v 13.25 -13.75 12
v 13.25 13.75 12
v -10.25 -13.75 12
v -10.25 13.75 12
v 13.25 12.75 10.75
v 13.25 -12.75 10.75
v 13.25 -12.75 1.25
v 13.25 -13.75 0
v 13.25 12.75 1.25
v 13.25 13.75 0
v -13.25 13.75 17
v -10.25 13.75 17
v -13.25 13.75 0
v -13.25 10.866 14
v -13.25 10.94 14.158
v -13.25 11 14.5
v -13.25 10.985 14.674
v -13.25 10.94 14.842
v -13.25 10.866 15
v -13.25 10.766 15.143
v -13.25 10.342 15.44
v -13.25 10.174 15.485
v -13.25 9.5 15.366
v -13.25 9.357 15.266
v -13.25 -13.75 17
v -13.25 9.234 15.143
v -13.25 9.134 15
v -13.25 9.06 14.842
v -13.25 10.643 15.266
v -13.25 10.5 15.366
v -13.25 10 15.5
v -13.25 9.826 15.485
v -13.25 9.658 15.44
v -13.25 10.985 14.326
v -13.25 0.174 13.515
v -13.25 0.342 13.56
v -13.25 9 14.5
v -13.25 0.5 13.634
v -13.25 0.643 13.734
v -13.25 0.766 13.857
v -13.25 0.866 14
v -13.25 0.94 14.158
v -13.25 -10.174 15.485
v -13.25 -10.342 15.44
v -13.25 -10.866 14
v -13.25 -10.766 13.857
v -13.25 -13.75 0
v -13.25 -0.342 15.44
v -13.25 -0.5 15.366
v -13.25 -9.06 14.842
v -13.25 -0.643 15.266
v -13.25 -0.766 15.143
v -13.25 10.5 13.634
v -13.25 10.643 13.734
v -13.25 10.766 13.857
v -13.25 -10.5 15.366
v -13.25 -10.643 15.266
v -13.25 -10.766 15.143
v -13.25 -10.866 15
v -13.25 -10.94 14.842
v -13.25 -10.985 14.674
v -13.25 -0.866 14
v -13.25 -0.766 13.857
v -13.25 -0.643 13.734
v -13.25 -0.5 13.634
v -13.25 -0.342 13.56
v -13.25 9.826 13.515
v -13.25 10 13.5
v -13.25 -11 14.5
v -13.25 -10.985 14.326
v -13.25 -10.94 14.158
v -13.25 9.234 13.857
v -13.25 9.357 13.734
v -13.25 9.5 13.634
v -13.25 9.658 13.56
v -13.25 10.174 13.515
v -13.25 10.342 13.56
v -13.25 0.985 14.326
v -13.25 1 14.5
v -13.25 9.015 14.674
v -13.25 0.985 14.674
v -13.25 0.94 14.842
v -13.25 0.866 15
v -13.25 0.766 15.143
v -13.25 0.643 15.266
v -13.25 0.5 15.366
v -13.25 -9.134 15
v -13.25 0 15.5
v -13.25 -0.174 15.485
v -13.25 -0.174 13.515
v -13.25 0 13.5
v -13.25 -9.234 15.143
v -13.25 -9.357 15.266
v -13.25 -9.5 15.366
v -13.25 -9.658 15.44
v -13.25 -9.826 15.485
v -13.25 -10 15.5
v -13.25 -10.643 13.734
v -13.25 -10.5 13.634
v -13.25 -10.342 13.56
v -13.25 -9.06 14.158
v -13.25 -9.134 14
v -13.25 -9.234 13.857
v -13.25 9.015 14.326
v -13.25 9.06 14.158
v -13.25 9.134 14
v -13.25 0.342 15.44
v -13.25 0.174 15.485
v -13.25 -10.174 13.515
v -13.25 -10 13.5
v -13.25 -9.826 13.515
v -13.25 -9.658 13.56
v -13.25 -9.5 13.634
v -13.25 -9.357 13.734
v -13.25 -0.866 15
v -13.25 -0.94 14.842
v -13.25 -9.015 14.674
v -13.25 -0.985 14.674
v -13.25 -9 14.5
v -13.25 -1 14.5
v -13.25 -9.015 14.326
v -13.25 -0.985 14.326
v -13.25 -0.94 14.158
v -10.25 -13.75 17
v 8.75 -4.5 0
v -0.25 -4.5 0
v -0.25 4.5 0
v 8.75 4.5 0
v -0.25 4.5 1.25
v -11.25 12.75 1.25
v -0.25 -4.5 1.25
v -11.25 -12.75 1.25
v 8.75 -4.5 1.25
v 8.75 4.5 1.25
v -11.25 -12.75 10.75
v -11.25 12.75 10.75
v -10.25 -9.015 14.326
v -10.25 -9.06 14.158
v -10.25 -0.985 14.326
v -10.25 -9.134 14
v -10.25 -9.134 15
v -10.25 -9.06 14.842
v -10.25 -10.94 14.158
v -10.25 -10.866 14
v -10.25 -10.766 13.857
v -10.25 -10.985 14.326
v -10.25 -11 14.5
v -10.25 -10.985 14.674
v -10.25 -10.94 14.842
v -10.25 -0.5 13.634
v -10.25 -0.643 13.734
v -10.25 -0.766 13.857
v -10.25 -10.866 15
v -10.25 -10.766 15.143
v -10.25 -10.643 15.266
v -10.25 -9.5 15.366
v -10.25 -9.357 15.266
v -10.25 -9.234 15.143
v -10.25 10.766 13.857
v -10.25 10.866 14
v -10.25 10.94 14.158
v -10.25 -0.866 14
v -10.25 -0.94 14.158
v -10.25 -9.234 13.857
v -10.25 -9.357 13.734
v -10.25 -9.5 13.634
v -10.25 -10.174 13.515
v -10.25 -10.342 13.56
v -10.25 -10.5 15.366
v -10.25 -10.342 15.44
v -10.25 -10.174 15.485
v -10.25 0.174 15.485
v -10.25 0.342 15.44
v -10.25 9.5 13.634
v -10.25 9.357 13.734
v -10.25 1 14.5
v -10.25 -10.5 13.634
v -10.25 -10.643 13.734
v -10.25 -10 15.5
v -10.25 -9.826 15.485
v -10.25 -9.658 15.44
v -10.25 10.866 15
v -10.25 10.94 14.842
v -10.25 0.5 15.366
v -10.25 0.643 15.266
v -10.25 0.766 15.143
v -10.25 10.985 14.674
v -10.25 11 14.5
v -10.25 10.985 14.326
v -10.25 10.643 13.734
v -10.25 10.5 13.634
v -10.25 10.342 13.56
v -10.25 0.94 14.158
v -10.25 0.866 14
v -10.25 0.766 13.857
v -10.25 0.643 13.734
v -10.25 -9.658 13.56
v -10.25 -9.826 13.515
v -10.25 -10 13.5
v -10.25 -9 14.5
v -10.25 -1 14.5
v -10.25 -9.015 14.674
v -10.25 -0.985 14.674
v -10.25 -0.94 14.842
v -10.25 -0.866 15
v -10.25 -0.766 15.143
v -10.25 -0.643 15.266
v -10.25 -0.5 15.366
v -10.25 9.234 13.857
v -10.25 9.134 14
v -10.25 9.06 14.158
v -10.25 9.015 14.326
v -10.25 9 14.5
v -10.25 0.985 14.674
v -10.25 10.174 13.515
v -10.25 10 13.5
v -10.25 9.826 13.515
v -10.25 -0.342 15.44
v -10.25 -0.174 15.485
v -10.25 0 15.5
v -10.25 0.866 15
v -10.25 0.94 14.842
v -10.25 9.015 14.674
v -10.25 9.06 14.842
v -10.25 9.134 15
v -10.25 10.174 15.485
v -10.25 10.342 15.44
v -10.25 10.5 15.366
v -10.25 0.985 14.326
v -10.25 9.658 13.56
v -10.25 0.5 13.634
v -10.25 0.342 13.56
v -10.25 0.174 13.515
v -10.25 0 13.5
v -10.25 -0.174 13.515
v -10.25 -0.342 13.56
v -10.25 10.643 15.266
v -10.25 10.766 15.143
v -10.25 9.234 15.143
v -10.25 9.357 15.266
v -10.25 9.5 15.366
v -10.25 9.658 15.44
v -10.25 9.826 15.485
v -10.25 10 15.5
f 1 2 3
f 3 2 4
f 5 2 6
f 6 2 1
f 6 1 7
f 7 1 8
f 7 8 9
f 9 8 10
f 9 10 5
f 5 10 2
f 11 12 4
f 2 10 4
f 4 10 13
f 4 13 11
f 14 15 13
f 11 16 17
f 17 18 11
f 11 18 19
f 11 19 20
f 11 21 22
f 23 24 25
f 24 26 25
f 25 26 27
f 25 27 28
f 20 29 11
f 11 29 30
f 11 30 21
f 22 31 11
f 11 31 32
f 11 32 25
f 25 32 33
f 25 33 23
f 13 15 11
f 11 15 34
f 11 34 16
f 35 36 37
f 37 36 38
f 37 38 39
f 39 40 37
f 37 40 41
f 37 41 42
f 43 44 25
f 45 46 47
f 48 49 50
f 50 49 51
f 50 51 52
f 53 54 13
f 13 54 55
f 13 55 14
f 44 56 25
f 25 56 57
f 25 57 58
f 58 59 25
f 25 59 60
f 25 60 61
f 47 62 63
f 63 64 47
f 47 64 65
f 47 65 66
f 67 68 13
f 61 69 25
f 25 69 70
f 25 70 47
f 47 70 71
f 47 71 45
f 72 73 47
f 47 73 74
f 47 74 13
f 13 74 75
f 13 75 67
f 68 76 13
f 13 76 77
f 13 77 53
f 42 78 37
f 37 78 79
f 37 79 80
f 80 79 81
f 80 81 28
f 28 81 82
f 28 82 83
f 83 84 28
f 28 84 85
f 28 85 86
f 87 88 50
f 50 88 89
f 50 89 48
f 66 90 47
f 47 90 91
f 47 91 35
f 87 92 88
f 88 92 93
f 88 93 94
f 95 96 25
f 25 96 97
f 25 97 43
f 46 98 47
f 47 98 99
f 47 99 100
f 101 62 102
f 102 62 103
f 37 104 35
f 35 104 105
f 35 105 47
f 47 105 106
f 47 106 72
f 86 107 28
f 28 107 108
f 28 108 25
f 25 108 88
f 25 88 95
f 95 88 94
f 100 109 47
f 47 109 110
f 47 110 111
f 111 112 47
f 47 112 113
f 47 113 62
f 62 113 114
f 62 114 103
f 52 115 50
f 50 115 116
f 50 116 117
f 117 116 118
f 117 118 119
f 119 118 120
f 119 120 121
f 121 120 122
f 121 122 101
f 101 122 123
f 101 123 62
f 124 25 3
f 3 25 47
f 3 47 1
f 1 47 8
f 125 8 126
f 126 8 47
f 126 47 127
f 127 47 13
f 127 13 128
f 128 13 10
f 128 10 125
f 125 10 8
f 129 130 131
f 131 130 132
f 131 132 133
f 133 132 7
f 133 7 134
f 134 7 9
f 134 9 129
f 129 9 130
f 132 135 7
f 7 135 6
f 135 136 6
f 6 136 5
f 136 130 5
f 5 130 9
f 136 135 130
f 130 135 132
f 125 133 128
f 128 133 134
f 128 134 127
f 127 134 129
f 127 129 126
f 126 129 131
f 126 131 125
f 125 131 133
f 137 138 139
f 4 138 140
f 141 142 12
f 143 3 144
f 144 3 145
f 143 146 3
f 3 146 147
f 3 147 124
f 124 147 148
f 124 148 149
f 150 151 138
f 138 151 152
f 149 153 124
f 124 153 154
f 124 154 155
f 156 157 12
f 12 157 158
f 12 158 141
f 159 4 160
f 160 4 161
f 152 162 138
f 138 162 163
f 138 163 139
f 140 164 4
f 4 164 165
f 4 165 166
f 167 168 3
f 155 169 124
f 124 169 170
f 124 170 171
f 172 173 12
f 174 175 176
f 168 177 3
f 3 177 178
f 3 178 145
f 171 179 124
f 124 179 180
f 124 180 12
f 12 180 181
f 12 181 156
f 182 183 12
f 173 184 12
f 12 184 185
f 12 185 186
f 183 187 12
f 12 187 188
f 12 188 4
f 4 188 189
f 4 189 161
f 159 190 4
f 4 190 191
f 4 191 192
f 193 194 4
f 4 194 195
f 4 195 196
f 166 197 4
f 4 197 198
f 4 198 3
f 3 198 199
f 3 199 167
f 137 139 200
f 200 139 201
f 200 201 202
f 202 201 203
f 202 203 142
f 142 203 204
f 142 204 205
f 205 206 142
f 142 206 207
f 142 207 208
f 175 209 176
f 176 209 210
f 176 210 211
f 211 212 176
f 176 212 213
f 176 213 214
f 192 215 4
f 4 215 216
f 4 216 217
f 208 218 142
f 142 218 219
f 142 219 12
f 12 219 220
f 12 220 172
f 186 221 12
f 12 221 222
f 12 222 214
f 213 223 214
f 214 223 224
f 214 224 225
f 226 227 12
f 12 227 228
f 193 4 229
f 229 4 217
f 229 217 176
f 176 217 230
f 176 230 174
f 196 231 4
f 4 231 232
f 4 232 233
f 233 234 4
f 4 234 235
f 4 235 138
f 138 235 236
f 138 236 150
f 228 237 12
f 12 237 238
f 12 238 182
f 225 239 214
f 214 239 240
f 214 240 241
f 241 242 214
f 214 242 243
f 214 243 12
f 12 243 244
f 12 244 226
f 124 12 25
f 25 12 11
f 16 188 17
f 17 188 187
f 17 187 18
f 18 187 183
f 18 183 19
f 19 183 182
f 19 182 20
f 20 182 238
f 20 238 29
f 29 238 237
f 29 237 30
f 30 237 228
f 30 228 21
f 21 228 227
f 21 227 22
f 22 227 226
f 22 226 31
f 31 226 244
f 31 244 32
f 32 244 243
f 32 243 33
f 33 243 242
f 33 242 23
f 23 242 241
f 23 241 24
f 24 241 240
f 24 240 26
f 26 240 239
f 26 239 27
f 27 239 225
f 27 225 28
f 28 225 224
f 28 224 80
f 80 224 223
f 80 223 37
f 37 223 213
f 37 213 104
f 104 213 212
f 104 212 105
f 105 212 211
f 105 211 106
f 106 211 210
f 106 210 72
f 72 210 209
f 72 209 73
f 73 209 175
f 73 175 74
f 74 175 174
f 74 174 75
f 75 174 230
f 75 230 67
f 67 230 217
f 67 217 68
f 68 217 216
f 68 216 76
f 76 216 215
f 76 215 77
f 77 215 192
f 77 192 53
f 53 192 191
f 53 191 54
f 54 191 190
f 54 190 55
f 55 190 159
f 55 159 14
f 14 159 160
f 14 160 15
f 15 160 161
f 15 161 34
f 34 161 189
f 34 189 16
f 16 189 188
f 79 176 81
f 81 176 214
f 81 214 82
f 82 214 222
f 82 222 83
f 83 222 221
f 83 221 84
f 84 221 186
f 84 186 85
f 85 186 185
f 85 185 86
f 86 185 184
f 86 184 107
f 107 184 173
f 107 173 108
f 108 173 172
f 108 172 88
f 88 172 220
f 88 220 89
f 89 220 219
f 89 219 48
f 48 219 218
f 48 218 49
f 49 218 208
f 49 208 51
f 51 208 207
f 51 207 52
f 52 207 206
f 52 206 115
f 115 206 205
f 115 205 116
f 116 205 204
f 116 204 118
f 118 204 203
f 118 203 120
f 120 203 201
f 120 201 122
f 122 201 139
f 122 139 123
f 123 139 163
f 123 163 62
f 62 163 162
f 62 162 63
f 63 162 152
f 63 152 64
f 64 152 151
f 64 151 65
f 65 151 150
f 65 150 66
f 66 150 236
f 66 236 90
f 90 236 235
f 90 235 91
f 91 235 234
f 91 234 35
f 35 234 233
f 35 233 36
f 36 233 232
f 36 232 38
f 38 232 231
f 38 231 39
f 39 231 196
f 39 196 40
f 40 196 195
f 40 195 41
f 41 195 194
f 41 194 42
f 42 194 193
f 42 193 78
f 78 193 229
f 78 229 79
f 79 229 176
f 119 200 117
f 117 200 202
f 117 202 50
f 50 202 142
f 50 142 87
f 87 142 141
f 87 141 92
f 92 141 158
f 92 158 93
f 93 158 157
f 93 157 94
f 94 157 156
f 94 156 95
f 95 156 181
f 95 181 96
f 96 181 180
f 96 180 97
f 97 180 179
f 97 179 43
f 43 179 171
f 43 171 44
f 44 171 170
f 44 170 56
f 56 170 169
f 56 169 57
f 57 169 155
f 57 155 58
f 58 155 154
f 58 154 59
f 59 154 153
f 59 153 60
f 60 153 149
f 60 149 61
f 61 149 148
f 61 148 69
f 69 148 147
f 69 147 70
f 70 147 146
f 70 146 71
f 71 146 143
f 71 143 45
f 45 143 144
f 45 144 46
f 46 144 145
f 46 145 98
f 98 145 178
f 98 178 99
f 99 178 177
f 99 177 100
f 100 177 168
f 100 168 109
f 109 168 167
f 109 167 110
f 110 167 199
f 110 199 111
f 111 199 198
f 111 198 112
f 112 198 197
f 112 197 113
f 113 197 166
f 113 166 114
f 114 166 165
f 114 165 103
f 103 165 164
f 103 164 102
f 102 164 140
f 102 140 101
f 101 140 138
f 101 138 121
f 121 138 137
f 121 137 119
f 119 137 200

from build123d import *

# Parameters (mm, degrees)
SKETCH1_W           = 26.5
SKETCH1_H           = 27.5
BOSS_EXTRUDE1_DEPTH = 12
SKETCH3_W           = 9.5
SKETCH3_H           = 25.5
CUT_EXTRUDE1_DEPTH  = 24.5
SKETCH4_W           = 9
SKETCH4_H           = 9
CUT_EXTRUDE2_DEPTH  = 3.5
SKETCH6_W           = 3
SKETCH6_H           = 27.5
BOSS_EXTRUDE2_DEPTH = 5
SKETCH7_R           = 1
CUT_EXTRUDE3_DEPTH  = 5


with BuildPart() as part:
    # Sketch1 → Boss-Extrude1 (new body)
    with BuildSketch(Plane.XY):
        Rectangle(SKETCH1_W, SKETCH1_H)
    extrude(amount=BOSS_EXTRUDE1_DEPTH)

    # Sketch3 → Cut-Extrude1 (cut)
    with BuildSketch(Plane(origin=(13.25, 0, 0), x_dir=(0, 0, -1), z_dir=(1, 0, 0))):
        with Locations((-6, 0)):
            Rectangle(SKETCH3_W, SKETCH3_H)
    extrude(amount=-CUT_EXTRUDE1_DEPTH, mode=Mode.SUBTRACT)

    # Sketch4 → Cut-Extrude2 (cut)
    with BuildSketch(Plane(origin=(0, 0, 0), x_dir=(-1, 0, 0), z_dir=(0, 0, -1))):
        with Locations((-4.25, 0)):
            Rectangle(SKETCH4_W, SKETCH4_H)
    extrude(amount=-CUT_EXTRUDE2_DEPTH, mode=Mode.SUBTRACT)

    # Sketch6 → Boss-Extrude2 (add)
    with BuildSketch(Plane.XY.offset(12)):
        with Locations((-11.75, 0)):
            Rectangle(SKETCH6_W, SKETCH6_H)
    extrude(amount=BOSS_EXTRUDE2_DEPTH)

    # Sketch7 → Cut-Extrude3 (cut)
    with BuildSketch(Plane(origin=(-10.25, 0, 0), x_dir=(0, 0, -1), z_dir=(1, 0, 0))):
        with Locations(Location((-14.5, -10, 0), (0, 0, 90))):
            Circle(SKETCH7_R)
        with Locations(Location((-14.5, 0, 0), (0, 0, 90))):
            Circle(SKETCH7_R)
        with Locations(Location((-14.5, 10, 0), (0, 0, 90))):
            Circle(SKETCH7_R)
    extrude(amount=-CUT_EXTRUDE3_DEPTH, mode=Mode.SUBTRACT)


solid = part.part
